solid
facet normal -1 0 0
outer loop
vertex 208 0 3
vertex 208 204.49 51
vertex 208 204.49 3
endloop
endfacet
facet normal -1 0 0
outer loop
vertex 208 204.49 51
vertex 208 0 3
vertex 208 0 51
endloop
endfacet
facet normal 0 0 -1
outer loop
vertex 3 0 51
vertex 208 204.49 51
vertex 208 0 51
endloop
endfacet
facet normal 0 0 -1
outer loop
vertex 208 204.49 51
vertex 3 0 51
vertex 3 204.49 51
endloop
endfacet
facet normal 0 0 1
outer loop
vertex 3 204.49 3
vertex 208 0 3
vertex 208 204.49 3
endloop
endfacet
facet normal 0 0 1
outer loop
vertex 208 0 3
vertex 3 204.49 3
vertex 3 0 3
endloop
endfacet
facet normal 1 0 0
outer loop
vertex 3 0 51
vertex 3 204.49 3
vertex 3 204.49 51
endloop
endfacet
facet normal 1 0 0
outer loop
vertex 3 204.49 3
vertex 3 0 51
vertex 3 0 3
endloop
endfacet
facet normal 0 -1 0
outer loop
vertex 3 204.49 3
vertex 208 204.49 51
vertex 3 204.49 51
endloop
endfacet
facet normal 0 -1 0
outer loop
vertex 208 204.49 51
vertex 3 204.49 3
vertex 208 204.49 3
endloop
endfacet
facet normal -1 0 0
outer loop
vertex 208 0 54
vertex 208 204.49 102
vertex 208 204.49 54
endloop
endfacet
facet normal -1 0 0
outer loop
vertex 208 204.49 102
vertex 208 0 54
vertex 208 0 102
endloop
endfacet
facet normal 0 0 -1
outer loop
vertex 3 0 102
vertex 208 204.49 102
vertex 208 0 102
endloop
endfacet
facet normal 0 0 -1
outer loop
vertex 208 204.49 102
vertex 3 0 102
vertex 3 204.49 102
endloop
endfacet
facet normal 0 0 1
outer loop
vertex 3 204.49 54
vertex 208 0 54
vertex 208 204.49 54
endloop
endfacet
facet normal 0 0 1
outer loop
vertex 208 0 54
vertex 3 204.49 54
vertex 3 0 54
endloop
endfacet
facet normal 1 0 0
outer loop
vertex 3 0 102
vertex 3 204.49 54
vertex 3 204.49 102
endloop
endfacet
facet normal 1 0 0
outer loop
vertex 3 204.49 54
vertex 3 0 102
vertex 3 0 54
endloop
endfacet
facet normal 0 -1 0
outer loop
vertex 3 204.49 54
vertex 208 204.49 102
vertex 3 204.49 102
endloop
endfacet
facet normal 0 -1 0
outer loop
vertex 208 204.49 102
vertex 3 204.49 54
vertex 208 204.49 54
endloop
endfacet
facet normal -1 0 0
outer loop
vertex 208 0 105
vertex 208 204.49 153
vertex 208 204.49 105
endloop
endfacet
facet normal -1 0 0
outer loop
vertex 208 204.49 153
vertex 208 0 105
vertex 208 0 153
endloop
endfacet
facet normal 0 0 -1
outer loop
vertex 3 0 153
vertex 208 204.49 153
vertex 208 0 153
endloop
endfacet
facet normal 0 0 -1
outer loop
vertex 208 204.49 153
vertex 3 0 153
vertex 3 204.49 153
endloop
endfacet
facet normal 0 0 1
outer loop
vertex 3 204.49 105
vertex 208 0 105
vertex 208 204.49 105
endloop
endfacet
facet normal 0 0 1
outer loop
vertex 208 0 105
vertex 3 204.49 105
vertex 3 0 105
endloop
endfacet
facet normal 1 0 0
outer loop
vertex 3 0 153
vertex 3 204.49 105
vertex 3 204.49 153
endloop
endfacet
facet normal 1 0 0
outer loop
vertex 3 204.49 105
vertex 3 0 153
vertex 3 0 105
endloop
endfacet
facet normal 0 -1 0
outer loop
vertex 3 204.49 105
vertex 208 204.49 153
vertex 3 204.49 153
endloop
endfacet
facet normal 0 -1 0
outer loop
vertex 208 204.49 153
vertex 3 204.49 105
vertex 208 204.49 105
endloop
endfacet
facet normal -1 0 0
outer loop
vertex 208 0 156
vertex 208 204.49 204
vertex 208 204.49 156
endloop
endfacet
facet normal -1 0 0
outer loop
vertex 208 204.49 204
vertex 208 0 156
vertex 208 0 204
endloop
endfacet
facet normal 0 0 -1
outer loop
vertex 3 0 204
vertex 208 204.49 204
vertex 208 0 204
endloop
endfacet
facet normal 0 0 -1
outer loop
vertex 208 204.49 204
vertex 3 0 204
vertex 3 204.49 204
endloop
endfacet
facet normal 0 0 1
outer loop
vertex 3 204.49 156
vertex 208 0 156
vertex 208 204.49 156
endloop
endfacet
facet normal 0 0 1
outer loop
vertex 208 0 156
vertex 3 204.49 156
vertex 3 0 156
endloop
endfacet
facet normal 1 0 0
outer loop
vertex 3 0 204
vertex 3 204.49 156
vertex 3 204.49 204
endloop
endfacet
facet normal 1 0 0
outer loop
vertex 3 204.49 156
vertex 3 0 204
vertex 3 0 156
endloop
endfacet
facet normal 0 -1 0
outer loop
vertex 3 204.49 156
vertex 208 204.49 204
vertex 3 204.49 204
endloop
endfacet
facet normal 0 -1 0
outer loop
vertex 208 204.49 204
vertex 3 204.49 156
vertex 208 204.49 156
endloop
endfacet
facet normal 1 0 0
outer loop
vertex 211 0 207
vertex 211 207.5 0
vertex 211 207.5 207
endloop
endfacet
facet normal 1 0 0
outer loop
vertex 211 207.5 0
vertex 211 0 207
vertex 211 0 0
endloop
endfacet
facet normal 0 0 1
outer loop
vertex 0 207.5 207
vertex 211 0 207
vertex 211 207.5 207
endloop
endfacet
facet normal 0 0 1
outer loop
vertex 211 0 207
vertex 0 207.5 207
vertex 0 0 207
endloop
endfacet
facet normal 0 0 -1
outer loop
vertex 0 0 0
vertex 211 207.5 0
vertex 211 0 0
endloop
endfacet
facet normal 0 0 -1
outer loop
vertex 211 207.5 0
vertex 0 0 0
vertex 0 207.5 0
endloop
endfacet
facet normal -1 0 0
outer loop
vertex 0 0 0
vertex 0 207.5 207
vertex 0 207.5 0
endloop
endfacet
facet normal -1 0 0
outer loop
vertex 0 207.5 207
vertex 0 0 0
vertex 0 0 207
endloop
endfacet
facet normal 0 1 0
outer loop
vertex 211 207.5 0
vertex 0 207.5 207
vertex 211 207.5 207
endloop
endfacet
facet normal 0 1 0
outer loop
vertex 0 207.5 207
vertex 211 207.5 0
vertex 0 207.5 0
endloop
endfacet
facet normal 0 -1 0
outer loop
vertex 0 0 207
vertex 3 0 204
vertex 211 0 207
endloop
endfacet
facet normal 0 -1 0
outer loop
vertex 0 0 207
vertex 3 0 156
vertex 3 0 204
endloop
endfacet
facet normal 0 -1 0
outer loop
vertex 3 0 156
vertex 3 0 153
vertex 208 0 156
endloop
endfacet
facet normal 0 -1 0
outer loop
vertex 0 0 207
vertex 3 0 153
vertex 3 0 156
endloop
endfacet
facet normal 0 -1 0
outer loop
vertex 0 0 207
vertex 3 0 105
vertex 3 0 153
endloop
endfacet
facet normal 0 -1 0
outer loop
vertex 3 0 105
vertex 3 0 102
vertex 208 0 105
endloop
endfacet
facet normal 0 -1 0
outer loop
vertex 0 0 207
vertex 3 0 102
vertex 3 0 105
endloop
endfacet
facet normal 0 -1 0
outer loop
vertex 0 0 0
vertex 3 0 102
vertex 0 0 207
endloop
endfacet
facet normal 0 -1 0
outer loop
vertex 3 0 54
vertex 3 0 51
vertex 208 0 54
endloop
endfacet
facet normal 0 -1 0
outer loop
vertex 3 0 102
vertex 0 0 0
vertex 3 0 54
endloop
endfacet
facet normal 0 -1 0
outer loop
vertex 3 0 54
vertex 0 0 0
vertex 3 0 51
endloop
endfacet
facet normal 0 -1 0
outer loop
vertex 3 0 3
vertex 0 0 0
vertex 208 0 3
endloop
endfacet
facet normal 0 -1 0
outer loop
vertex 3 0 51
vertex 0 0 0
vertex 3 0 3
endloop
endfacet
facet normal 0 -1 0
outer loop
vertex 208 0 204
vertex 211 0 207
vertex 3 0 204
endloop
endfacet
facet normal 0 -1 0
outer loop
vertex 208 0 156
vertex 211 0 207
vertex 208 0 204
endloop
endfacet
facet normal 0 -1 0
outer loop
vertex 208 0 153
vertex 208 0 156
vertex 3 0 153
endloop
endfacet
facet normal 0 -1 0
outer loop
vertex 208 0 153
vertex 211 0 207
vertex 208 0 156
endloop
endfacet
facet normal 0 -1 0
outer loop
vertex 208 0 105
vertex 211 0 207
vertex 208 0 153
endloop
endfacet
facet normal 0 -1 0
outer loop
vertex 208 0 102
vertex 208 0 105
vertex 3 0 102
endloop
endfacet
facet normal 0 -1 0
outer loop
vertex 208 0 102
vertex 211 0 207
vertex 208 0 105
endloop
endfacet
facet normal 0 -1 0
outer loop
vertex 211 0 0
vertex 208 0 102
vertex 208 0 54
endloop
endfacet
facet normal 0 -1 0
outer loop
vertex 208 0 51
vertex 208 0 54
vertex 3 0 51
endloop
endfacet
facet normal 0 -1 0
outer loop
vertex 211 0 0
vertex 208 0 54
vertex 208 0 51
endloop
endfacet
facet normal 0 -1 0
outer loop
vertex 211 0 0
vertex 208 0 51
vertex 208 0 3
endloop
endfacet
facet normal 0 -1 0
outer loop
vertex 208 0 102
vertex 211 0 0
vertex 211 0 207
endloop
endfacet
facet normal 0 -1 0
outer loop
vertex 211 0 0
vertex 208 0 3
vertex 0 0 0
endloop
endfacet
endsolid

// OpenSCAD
wellDiameter = 22;
wellHeight = 44;

thickness=3;

numberWell=9;
numberDrawer=4;
gap=0.5;


drawerWidth = 2*thickness + numberWell * wellDiameter;
drawerDepth = 2*thickness + numberWell * wellDiameter;
drawerHeight = thickness+wellHeight;

fullWidth = 2*thickness + 2*gap + drawerWidth;
fullDepth = thickness + gap + drawerDepth;
fullHeight = thickness + (gap + drawerHeight + gap + thickness) * numberDrawer;

difference() {
  cube([fullWidth, fullDepth, fullHeight ]);

  for (i = [0:numberDrawer-1]) {
    translate([thickness, -0.01, thickness + (gap + drawerHeight + gap + thickness) * i]) {
      cube([drawerWidth+2*gap, drawerDepth+gap, drawerHeight+2*gap]);
    }
  }

}
